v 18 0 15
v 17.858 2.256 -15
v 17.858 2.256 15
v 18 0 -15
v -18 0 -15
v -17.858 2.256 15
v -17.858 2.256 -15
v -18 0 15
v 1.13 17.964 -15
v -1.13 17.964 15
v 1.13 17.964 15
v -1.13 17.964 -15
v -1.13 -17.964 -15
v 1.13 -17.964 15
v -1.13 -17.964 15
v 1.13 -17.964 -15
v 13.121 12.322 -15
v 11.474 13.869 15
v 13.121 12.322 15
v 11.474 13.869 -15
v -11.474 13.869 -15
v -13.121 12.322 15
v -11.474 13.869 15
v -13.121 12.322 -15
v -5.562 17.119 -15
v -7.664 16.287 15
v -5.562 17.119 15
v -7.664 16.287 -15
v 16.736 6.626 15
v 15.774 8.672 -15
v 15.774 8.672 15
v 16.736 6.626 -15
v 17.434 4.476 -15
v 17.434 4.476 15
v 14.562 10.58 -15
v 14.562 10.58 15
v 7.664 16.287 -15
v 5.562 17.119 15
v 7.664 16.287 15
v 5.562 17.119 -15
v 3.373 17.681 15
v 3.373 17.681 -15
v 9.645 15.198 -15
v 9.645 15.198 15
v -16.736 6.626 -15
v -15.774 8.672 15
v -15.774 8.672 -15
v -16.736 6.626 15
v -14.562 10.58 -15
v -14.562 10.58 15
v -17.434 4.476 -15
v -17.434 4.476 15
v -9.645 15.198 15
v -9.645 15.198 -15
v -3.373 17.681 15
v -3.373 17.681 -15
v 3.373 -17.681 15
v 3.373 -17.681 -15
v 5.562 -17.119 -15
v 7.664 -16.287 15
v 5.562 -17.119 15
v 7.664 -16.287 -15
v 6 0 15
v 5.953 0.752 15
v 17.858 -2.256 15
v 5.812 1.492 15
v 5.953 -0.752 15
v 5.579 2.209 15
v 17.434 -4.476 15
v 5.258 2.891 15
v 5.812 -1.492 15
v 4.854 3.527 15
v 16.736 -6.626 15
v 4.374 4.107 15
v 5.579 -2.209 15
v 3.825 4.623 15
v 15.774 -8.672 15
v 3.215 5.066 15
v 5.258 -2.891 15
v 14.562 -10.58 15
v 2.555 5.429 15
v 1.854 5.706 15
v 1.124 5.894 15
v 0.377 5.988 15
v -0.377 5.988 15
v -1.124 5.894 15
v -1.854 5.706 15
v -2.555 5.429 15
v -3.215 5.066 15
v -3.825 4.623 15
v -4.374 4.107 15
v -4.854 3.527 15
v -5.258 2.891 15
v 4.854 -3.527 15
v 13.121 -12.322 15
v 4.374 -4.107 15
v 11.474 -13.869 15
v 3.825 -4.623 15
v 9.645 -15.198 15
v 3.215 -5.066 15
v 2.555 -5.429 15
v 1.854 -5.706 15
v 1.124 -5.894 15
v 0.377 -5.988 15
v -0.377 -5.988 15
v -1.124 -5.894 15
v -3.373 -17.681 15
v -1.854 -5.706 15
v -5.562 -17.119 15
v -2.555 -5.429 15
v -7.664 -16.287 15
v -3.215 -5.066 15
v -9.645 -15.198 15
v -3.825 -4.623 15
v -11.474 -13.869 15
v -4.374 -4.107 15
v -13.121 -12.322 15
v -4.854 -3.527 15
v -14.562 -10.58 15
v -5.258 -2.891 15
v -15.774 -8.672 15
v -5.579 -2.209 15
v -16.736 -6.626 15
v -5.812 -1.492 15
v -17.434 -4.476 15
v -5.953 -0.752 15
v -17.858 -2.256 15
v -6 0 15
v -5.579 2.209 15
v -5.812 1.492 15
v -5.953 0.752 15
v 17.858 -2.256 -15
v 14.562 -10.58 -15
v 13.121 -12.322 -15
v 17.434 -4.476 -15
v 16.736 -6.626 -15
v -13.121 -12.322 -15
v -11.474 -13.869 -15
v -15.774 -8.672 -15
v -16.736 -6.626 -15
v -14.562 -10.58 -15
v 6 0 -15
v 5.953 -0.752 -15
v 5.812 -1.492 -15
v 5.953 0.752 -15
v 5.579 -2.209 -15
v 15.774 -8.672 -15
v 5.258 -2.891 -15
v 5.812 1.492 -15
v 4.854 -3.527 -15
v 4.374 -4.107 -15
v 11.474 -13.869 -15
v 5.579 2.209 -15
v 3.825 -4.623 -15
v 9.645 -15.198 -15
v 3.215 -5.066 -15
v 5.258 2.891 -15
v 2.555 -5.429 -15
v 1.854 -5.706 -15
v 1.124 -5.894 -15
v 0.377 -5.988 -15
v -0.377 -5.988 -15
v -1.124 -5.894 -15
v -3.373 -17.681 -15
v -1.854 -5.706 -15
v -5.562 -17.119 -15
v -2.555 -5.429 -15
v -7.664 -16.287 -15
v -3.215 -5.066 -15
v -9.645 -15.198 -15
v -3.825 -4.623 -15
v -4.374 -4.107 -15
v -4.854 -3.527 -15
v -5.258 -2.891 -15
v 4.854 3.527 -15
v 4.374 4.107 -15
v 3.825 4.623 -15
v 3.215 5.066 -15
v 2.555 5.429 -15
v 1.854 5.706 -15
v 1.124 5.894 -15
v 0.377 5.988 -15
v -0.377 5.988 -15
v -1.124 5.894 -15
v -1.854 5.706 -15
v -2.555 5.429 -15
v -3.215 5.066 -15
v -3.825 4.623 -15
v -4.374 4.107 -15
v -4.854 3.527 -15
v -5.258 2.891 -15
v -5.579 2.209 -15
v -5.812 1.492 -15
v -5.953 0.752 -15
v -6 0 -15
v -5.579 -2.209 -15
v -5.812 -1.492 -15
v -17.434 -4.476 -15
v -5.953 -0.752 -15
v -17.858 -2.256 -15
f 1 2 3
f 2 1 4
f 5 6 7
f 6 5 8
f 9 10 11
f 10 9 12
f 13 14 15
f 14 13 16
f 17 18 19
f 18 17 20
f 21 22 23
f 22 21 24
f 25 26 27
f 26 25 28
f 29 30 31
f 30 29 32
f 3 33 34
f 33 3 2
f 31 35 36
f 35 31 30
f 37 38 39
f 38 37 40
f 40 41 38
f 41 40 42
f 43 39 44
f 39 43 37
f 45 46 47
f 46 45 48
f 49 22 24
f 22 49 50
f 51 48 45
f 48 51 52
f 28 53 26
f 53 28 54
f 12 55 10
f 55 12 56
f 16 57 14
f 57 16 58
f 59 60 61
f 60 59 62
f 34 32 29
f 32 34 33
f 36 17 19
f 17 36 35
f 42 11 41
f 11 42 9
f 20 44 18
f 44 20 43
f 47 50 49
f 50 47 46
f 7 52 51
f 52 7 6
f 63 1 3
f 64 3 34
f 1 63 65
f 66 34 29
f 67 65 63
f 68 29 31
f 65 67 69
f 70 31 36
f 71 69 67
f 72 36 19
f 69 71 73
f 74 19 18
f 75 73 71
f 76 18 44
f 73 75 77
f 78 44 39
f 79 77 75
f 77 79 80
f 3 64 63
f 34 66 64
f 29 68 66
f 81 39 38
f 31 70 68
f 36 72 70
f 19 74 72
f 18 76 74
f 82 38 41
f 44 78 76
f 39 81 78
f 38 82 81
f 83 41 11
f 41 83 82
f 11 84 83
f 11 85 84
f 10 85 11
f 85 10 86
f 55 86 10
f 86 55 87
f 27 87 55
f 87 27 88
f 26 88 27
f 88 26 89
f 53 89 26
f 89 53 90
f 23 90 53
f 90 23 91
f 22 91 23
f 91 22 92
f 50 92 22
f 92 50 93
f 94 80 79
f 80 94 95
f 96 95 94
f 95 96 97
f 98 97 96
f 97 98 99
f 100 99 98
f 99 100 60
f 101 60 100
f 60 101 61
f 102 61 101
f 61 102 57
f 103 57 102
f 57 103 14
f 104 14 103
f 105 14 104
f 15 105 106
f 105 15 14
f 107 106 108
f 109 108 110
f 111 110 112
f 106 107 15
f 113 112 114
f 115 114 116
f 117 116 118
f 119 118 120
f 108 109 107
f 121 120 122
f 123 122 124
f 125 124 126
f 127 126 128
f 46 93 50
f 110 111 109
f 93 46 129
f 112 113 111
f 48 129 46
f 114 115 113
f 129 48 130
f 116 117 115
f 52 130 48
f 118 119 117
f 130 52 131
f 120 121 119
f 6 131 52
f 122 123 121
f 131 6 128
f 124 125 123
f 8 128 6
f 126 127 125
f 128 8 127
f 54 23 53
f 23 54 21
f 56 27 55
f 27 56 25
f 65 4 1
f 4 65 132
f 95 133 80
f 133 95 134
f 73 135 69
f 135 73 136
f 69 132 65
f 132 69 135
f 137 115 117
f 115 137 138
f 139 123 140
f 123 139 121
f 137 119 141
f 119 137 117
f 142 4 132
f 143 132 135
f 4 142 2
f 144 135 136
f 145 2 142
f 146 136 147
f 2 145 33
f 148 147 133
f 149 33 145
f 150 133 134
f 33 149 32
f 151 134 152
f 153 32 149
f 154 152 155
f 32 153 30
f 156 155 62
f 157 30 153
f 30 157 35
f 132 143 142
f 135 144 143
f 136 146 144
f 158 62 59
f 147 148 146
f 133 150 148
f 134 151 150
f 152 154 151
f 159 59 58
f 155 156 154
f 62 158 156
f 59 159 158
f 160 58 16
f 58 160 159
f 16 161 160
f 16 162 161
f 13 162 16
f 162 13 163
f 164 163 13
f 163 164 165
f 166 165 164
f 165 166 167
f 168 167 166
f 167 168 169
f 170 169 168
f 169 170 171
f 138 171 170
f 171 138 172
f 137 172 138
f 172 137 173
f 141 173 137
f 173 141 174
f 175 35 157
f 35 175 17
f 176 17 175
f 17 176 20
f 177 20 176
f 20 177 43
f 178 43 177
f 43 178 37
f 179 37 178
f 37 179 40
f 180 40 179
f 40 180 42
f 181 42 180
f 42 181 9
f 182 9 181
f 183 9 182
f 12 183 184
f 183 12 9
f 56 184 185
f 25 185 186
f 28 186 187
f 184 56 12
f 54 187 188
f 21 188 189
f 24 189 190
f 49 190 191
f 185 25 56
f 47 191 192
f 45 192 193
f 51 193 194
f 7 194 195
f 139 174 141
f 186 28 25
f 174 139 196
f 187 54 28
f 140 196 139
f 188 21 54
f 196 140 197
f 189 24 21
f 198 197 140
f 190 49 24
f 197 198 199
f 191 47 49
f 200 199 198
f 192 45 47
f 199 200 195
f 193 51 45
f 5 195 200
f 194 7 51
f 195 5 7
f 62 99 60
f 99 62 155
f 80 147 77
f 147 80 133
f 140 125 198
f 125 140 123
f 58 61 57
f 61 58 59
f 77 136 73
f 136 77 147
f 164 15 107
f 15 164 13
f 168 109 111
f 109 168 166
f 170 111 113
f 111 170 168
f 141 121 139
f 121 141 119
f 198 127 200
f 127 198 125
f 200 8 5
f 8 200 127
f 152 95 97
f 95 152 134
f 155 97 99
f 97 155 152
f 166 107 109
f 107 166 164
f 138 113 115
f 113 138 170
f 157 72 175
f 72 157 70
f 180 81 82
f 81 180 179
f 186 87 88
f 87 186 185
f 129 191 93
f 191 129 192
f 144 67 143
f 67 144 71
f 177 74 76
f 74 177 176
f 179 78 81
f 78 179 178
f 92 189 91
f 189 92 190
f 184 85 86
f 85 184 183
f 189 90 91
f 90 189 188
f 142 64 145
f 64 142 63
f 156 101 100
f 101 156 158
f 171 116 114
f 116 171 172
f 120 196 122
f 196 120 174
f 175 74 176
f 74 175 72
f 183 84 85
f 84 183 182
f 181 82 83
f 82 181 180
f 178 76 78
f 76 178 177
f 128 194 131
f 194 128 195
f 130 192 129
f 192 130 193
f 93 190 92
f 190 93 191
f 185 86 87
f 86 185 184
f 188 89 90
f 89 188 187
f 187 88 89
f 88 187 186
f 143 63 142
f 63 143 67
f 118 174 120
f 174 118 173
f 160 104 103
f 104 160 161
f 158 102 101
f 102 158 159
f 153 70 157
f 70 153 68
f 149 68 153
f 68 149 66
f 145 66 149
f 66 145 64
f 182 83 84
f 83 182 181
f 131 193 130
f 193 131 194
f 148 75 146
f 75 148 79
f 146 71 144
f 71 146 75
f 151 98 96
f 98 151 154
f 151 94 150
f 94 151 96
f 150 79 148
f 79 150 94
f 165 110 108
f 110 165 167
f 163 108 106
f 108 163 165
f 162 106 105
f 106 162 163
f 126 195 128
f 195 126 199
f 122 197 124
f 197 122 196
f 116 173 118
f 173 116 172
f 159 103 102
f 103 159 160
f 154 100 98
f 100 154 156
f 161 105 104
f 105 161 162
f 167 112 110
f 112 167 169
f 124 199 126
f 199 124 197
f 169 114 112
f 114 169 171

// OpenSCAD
$fn = 50;


difference() {
	union() {
		translate(v = [0, 0, -15.0000000000]) {
			cylinder(h = 30, r = 18.0000000000);
		}
	}
	union() {
		translate(v = [0, 0, -100.0000000000]) {
			cylinder(h = 200, r = 6);
		}
	}
}
